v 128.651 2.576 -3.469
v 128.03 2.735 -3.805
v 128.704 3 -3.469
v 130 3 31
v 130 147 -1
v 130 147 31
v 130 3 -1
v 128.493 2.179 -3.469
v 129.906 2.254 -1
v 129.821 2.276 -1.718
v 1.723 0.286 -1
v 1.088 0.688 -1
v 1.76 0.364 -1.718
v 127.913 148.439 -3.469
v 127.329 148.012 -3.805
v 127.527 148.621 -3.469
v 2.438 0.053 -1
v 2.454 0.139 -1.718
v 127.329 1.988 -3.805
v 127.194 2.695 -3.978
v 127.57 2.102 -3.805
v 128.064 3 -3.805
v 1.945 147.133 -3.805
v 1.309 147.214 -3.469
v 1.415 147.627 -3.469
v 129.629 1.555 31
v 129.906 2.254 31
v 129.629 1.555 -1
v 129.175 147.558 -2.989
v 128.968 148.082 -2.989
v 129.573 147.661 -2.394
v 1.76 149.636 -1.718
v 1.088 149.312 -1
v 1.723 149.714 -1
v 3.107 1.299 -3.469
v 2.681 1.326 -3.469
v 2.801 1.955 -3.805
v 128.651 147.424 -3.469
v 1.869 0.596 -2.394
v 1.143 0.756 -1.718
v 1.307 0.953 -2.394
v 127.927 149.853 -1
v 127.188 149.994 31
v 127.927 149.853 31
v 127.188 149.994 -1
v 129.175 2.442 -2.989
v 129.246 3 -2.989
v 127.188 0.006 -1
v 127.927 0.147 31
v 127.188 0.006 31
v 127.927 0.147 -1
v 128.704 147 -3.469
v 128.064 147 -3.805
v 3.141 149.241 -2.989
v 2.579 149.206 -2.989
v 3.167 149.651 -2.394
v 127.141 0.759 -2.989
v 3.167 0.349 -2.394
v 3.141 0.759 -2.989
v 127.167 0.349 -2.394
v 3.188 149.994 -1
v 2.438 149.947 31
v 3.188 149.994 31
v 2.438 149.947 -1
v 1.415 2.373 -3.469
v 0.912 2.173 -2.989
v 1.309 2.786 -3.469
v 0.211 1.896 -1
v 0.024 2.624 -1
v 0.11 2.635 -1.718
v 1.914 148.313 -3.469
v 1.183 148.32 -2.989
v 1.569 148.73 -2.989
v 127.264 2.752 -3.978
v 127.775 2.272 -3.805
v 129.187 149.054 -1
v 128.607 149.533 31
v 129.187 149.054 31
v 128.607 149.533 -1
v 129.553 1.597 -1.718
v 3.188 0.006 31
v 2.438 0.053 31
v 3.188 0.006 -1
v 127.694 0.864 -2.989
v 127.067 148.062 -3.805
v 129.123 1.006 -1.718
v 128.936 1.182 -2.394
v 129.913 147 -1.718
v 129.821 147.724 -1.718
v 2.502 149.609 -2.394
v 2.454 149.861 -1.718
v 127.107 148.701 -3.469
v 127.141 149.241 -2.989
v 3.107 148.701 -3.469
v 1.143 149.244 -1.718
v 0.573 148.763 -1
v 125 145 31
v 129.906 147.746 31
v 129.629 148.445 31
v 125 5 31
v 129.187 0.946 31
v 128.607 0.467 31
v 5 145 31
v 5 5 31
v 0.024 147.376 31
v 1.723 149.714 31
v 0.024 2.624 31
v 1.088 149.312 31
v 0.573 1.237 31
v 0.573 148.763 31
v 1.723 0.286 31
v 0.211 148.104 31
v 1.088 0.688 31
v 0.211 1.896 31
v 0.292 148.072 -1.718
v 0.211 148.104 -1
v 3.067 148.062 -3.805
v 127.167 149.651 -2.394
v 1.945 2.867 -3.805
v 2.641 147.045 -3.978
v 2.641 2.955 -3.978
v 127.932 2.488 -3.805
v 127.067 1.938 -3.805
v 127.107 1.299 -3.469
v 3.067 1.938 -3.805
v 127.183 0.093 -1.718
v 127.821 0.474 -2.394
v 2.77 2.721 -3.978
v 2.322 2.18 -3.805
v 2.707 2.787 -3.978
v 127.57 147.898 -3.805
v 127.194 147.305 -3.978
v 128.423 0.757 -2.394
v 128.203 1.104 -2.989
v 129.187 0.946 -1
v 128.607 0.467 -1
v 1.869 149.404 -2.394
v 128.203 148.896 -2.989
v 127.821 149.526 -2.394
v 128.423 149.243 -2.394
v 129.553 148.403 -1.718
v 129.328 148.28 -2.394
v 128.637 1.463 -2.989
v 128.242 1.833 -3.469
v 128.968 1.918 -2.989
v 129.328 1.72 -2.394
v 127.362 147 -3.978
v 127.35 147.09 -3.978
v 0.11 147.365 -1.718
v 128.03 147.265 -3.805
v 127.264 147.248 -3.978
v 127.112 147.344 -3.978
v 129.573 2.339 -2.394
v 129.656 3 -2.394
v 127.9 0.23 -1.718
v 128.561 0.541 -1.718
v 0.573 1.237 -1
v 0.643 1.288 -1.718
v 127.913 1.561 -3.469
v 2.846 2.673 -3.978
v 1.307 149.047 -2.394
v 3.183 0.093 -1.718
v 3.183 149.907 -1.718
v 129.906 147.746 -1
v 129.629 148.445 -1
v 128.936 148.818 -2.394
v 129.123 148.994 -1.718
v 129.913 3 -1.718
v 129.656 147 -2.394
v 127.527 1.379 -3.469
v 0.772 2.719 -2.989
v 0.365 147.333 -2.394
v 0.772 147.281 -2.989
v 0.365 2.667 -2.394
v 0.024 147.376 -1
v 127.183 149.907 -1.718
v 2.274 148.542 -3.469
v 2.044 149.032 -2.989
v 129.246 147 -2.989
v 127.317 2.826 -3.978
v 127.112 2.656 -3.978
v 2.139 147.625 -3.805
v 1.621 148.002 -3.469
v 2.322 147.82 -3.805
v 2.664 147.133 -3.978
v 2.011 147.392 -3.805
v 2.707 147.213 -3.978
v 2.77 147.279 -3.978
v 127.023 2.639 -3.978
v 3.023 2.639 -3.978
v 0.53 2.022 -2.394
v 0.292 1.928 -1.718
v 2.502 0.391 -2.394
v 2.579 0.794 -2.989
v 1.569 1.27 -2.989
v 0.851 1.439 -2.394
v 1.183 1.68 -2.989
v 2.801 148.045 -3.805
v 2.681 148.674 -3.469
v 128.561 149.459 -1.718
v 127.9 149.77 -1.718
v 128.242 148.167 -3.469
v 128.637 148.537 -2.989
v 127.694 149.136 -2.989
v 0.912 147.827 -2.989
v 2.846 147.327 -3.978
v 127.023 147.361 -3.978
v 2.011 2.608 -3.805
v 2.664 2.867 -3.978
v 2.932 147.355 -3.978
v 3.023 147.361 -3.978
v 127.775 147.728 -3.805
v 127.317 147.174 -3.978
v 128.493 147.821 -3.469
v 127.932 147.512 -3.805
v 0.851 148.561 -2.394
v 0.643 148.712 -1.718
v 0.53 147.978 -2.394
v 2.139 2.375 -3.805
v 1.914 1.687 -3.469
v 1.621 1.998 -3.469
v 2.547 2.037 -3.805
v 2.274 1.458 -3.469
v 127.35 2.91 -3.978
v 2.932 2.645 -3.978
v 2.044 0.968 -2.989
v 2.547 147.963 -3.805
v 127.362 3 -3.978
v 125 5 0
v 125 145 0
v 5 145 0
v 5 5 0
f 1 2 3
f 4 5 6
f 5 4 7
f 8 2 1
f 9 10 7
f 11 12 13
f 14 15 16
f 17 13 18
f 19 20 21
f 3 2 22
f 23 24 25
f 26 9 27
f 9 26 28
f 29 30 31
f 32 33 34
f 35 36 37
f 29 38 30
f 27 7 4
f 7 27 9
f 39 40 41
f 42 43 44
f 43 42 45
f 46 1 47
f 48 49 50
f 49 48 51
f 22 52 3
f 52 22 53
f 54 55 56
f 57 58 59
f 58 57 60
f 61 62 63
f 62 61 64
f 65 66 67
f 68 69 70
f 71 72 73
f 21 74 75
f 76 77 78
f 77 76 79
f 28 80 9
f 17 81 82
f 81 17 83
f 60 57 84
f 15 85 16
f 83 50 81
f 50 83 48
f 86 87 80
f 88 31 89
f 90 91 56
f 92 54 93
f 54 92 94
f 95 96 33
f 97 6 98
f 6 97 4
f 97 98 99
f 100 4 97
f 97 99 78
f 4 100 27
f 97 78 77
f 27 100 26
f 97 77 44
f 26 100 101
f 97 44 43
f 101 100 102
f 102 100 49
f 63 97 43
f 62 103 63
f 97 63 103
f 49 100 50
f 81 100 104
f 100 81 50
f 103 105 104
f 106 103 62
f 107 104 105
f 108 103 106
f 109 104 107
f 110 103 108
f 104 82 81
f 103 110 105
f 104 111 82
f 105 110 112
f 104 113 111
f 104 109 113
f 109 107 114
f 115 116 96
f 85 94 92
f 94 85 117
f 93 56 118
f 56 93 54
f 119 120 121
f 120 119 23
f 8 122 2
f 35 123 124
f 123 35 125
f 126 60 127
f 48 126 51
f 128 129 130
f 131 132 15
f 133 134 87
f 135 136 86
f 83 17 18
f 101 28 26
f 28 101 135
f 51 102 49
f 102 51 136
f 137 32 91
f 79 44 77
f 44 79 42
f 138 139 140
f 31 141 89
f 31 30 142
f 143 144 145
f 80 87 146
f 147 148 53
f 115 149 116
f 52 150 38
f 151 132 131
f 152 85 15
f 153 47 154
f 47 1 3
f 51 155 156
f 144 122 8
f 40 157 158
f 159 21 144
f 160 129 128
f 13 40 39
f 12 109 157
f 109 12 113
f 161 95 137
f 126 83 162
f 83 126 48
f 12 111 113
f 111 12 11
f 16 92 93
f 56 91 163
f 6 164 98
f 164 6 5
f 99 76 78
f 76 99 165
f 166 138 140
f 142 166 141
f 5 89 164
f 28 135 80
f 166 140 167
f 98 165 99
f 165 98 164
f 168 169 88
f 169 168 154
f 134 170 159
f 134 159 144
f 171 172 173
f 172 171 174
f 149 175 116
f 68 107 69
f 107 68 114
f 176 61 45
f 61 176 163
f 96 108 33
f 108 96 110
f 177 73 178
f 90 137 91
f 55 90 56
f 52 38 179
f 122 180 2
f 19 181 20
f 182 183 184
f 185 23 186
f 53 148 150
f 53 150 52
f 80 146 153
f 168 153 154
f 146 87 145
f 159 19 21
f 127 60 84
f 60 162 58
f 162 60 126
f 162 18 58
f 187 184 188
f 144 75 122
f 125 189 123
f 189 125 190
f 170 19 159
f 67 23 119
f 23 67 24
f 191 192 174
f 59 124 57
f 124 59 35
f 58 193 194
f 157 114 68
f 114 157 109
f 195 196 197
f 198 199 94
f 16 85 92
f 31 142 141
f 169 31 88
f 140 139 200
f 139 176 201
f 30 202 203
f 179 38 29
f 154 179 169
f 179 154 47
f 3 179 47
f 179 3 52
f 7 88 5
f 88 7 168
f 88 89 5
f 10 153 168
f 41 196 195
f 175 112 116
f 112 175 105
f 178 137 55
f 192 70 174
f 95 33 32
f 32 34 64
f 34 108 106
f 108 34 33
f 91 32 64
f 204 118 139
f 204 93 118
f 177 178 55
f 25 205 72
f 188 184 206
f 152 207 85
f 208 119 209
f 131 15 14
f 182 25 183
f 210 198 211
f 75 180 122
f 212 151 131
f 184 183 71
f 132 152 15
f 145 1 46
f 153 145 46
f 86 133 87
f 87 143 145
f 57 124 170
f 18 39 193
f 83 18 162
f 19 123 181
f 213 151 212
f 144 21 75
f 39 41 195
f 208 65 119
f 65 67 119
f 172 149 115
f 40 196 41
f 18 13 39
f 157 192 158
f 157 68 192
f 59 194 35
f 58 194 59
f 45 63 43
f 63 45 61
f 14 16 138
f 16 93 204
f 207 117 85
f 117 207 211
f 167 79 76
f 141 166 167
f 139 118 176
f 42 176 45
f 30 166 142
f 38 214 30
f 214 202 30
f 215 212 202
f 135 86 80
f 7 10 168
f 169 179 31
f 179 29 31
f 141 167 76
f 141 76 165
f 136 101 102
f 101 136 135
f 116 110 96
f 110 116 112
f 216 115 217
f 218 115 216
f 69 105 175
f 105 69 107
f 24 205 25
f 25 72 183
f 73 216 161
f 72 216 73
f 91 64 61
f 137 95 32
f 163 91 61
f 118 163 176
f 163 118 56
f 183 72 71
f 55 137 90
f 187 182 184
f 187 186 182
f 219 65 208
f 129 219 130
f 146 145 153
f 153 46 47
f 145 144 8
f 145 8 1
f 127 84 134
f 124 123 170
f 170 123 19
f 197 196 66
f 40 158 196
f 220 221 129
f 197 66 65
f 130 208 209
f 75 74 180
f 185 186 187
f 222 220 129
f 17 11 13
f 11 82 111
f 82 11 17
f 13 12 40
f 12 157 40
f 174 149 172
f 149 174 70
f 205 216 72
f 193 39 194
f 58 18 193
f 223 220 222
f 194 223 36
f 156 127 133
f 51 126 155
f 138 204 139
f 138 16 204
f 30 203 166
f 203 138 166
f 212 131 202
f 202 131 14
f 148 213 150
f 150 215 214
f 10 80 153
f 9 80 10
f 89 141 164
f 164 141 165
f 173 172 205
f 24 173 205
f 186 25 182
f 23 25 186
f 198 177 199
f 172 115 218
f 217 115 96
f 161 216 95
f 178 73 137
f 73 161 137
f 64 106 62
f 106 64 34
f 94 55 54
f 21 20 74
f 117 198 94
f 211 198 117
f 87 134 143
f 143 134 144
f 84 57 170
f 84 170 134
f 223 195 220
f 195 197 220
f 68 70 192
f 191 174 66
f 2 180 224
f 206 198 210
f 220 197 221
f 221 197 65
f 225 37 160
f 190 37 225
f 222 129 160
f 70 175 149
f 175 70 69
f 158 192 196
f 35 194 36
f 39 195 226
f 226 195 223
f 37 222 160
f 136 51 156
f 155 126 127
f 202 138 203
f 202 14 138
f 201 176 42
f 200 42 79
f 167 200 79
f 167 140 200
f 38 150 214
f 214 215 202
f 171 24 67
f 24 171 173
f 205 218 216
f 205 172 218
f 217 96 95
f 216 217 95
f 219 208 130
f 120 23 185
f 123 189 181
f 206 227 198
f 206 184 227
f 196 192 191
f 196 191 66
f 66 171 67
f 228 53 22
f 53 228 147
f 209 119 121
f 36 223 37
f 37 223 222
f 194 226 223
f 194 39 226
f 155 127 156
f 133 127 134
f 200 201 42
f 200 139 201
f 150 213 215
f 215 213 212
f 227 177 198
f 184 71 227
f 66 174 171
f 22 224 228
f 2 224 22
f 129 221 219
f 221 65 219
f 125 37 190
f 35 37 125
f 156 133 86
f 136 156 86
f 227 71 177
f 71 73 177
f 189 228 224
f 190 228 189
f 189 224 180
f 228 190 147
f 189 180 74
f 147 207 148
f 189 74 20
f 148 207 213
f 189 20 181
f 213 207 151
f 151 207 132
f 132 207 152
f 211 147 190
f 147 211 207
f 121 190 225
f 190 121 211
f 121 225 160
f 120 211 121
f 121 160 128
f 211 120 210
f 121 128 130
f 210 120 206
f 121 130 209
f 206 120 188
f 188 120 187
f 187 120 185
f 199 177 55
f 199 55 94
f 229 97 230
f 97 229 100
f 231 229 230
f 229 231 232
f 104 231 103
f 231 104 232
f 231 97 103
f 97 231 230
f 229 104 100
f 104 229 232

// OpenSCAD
// main dimensions
plate_width = 120;
plate_height = 140;
wall_diameter = 5;
wall_height = 35;
floor_height = 4;

smooth_radius = 3;

// main chunk
main_w = plate_width + 2 * wall_diameter;
main_h = plate_height + 2 * wall_diameter;
main_d = wall_height;

difference() {
    hull() {
        translate([0, 0, -floor_height + smooth_radius*2]) {
            cyl_h = main_d - smooth_radius*2;
            translate([smooth_radius, smooth_radius]) cylinder(cyl_h, r = smooth_radius, $fn = 25);
            translate([main_w-smooth_radius, smooth_radius]) cylinder(cyl_h, r = smooth_radius, $fn = 25);
            translate([smooth_radius, main_h-smooth_radius]) cylinder(cyl_h, r = smooth_radius, $fn = 25);
            translate([main_w-smooth_radius, main_h-smooth_radius]) cylinder(cyl_h, r = smooth_radius, $fn = 25);
        }
        translate([0, 0, -floor_height + smooth_radius]) {
            translate([smooth_radius, smooth_radius]) sphere(r = smooth_radius, $fn = 25);
            translate([main_w-smooth_radius, smooth_radius]) sphere(r = smooth_radius, $fn = 25);
            translate([smooth_radius, main_h-smooth_radius]) sphere(r = smooth_radius, $fn = 25);
            translate([main_w-smooth_radius, main_h-smooth_radius]) sphere(r = smooth_radius, $fn = 25);
        }
    }
    
    // cut out main hole
    translate([wall_diameter, wall_diameter]) {
        cube([plate_width, plate_height, 100]);
    }
}
